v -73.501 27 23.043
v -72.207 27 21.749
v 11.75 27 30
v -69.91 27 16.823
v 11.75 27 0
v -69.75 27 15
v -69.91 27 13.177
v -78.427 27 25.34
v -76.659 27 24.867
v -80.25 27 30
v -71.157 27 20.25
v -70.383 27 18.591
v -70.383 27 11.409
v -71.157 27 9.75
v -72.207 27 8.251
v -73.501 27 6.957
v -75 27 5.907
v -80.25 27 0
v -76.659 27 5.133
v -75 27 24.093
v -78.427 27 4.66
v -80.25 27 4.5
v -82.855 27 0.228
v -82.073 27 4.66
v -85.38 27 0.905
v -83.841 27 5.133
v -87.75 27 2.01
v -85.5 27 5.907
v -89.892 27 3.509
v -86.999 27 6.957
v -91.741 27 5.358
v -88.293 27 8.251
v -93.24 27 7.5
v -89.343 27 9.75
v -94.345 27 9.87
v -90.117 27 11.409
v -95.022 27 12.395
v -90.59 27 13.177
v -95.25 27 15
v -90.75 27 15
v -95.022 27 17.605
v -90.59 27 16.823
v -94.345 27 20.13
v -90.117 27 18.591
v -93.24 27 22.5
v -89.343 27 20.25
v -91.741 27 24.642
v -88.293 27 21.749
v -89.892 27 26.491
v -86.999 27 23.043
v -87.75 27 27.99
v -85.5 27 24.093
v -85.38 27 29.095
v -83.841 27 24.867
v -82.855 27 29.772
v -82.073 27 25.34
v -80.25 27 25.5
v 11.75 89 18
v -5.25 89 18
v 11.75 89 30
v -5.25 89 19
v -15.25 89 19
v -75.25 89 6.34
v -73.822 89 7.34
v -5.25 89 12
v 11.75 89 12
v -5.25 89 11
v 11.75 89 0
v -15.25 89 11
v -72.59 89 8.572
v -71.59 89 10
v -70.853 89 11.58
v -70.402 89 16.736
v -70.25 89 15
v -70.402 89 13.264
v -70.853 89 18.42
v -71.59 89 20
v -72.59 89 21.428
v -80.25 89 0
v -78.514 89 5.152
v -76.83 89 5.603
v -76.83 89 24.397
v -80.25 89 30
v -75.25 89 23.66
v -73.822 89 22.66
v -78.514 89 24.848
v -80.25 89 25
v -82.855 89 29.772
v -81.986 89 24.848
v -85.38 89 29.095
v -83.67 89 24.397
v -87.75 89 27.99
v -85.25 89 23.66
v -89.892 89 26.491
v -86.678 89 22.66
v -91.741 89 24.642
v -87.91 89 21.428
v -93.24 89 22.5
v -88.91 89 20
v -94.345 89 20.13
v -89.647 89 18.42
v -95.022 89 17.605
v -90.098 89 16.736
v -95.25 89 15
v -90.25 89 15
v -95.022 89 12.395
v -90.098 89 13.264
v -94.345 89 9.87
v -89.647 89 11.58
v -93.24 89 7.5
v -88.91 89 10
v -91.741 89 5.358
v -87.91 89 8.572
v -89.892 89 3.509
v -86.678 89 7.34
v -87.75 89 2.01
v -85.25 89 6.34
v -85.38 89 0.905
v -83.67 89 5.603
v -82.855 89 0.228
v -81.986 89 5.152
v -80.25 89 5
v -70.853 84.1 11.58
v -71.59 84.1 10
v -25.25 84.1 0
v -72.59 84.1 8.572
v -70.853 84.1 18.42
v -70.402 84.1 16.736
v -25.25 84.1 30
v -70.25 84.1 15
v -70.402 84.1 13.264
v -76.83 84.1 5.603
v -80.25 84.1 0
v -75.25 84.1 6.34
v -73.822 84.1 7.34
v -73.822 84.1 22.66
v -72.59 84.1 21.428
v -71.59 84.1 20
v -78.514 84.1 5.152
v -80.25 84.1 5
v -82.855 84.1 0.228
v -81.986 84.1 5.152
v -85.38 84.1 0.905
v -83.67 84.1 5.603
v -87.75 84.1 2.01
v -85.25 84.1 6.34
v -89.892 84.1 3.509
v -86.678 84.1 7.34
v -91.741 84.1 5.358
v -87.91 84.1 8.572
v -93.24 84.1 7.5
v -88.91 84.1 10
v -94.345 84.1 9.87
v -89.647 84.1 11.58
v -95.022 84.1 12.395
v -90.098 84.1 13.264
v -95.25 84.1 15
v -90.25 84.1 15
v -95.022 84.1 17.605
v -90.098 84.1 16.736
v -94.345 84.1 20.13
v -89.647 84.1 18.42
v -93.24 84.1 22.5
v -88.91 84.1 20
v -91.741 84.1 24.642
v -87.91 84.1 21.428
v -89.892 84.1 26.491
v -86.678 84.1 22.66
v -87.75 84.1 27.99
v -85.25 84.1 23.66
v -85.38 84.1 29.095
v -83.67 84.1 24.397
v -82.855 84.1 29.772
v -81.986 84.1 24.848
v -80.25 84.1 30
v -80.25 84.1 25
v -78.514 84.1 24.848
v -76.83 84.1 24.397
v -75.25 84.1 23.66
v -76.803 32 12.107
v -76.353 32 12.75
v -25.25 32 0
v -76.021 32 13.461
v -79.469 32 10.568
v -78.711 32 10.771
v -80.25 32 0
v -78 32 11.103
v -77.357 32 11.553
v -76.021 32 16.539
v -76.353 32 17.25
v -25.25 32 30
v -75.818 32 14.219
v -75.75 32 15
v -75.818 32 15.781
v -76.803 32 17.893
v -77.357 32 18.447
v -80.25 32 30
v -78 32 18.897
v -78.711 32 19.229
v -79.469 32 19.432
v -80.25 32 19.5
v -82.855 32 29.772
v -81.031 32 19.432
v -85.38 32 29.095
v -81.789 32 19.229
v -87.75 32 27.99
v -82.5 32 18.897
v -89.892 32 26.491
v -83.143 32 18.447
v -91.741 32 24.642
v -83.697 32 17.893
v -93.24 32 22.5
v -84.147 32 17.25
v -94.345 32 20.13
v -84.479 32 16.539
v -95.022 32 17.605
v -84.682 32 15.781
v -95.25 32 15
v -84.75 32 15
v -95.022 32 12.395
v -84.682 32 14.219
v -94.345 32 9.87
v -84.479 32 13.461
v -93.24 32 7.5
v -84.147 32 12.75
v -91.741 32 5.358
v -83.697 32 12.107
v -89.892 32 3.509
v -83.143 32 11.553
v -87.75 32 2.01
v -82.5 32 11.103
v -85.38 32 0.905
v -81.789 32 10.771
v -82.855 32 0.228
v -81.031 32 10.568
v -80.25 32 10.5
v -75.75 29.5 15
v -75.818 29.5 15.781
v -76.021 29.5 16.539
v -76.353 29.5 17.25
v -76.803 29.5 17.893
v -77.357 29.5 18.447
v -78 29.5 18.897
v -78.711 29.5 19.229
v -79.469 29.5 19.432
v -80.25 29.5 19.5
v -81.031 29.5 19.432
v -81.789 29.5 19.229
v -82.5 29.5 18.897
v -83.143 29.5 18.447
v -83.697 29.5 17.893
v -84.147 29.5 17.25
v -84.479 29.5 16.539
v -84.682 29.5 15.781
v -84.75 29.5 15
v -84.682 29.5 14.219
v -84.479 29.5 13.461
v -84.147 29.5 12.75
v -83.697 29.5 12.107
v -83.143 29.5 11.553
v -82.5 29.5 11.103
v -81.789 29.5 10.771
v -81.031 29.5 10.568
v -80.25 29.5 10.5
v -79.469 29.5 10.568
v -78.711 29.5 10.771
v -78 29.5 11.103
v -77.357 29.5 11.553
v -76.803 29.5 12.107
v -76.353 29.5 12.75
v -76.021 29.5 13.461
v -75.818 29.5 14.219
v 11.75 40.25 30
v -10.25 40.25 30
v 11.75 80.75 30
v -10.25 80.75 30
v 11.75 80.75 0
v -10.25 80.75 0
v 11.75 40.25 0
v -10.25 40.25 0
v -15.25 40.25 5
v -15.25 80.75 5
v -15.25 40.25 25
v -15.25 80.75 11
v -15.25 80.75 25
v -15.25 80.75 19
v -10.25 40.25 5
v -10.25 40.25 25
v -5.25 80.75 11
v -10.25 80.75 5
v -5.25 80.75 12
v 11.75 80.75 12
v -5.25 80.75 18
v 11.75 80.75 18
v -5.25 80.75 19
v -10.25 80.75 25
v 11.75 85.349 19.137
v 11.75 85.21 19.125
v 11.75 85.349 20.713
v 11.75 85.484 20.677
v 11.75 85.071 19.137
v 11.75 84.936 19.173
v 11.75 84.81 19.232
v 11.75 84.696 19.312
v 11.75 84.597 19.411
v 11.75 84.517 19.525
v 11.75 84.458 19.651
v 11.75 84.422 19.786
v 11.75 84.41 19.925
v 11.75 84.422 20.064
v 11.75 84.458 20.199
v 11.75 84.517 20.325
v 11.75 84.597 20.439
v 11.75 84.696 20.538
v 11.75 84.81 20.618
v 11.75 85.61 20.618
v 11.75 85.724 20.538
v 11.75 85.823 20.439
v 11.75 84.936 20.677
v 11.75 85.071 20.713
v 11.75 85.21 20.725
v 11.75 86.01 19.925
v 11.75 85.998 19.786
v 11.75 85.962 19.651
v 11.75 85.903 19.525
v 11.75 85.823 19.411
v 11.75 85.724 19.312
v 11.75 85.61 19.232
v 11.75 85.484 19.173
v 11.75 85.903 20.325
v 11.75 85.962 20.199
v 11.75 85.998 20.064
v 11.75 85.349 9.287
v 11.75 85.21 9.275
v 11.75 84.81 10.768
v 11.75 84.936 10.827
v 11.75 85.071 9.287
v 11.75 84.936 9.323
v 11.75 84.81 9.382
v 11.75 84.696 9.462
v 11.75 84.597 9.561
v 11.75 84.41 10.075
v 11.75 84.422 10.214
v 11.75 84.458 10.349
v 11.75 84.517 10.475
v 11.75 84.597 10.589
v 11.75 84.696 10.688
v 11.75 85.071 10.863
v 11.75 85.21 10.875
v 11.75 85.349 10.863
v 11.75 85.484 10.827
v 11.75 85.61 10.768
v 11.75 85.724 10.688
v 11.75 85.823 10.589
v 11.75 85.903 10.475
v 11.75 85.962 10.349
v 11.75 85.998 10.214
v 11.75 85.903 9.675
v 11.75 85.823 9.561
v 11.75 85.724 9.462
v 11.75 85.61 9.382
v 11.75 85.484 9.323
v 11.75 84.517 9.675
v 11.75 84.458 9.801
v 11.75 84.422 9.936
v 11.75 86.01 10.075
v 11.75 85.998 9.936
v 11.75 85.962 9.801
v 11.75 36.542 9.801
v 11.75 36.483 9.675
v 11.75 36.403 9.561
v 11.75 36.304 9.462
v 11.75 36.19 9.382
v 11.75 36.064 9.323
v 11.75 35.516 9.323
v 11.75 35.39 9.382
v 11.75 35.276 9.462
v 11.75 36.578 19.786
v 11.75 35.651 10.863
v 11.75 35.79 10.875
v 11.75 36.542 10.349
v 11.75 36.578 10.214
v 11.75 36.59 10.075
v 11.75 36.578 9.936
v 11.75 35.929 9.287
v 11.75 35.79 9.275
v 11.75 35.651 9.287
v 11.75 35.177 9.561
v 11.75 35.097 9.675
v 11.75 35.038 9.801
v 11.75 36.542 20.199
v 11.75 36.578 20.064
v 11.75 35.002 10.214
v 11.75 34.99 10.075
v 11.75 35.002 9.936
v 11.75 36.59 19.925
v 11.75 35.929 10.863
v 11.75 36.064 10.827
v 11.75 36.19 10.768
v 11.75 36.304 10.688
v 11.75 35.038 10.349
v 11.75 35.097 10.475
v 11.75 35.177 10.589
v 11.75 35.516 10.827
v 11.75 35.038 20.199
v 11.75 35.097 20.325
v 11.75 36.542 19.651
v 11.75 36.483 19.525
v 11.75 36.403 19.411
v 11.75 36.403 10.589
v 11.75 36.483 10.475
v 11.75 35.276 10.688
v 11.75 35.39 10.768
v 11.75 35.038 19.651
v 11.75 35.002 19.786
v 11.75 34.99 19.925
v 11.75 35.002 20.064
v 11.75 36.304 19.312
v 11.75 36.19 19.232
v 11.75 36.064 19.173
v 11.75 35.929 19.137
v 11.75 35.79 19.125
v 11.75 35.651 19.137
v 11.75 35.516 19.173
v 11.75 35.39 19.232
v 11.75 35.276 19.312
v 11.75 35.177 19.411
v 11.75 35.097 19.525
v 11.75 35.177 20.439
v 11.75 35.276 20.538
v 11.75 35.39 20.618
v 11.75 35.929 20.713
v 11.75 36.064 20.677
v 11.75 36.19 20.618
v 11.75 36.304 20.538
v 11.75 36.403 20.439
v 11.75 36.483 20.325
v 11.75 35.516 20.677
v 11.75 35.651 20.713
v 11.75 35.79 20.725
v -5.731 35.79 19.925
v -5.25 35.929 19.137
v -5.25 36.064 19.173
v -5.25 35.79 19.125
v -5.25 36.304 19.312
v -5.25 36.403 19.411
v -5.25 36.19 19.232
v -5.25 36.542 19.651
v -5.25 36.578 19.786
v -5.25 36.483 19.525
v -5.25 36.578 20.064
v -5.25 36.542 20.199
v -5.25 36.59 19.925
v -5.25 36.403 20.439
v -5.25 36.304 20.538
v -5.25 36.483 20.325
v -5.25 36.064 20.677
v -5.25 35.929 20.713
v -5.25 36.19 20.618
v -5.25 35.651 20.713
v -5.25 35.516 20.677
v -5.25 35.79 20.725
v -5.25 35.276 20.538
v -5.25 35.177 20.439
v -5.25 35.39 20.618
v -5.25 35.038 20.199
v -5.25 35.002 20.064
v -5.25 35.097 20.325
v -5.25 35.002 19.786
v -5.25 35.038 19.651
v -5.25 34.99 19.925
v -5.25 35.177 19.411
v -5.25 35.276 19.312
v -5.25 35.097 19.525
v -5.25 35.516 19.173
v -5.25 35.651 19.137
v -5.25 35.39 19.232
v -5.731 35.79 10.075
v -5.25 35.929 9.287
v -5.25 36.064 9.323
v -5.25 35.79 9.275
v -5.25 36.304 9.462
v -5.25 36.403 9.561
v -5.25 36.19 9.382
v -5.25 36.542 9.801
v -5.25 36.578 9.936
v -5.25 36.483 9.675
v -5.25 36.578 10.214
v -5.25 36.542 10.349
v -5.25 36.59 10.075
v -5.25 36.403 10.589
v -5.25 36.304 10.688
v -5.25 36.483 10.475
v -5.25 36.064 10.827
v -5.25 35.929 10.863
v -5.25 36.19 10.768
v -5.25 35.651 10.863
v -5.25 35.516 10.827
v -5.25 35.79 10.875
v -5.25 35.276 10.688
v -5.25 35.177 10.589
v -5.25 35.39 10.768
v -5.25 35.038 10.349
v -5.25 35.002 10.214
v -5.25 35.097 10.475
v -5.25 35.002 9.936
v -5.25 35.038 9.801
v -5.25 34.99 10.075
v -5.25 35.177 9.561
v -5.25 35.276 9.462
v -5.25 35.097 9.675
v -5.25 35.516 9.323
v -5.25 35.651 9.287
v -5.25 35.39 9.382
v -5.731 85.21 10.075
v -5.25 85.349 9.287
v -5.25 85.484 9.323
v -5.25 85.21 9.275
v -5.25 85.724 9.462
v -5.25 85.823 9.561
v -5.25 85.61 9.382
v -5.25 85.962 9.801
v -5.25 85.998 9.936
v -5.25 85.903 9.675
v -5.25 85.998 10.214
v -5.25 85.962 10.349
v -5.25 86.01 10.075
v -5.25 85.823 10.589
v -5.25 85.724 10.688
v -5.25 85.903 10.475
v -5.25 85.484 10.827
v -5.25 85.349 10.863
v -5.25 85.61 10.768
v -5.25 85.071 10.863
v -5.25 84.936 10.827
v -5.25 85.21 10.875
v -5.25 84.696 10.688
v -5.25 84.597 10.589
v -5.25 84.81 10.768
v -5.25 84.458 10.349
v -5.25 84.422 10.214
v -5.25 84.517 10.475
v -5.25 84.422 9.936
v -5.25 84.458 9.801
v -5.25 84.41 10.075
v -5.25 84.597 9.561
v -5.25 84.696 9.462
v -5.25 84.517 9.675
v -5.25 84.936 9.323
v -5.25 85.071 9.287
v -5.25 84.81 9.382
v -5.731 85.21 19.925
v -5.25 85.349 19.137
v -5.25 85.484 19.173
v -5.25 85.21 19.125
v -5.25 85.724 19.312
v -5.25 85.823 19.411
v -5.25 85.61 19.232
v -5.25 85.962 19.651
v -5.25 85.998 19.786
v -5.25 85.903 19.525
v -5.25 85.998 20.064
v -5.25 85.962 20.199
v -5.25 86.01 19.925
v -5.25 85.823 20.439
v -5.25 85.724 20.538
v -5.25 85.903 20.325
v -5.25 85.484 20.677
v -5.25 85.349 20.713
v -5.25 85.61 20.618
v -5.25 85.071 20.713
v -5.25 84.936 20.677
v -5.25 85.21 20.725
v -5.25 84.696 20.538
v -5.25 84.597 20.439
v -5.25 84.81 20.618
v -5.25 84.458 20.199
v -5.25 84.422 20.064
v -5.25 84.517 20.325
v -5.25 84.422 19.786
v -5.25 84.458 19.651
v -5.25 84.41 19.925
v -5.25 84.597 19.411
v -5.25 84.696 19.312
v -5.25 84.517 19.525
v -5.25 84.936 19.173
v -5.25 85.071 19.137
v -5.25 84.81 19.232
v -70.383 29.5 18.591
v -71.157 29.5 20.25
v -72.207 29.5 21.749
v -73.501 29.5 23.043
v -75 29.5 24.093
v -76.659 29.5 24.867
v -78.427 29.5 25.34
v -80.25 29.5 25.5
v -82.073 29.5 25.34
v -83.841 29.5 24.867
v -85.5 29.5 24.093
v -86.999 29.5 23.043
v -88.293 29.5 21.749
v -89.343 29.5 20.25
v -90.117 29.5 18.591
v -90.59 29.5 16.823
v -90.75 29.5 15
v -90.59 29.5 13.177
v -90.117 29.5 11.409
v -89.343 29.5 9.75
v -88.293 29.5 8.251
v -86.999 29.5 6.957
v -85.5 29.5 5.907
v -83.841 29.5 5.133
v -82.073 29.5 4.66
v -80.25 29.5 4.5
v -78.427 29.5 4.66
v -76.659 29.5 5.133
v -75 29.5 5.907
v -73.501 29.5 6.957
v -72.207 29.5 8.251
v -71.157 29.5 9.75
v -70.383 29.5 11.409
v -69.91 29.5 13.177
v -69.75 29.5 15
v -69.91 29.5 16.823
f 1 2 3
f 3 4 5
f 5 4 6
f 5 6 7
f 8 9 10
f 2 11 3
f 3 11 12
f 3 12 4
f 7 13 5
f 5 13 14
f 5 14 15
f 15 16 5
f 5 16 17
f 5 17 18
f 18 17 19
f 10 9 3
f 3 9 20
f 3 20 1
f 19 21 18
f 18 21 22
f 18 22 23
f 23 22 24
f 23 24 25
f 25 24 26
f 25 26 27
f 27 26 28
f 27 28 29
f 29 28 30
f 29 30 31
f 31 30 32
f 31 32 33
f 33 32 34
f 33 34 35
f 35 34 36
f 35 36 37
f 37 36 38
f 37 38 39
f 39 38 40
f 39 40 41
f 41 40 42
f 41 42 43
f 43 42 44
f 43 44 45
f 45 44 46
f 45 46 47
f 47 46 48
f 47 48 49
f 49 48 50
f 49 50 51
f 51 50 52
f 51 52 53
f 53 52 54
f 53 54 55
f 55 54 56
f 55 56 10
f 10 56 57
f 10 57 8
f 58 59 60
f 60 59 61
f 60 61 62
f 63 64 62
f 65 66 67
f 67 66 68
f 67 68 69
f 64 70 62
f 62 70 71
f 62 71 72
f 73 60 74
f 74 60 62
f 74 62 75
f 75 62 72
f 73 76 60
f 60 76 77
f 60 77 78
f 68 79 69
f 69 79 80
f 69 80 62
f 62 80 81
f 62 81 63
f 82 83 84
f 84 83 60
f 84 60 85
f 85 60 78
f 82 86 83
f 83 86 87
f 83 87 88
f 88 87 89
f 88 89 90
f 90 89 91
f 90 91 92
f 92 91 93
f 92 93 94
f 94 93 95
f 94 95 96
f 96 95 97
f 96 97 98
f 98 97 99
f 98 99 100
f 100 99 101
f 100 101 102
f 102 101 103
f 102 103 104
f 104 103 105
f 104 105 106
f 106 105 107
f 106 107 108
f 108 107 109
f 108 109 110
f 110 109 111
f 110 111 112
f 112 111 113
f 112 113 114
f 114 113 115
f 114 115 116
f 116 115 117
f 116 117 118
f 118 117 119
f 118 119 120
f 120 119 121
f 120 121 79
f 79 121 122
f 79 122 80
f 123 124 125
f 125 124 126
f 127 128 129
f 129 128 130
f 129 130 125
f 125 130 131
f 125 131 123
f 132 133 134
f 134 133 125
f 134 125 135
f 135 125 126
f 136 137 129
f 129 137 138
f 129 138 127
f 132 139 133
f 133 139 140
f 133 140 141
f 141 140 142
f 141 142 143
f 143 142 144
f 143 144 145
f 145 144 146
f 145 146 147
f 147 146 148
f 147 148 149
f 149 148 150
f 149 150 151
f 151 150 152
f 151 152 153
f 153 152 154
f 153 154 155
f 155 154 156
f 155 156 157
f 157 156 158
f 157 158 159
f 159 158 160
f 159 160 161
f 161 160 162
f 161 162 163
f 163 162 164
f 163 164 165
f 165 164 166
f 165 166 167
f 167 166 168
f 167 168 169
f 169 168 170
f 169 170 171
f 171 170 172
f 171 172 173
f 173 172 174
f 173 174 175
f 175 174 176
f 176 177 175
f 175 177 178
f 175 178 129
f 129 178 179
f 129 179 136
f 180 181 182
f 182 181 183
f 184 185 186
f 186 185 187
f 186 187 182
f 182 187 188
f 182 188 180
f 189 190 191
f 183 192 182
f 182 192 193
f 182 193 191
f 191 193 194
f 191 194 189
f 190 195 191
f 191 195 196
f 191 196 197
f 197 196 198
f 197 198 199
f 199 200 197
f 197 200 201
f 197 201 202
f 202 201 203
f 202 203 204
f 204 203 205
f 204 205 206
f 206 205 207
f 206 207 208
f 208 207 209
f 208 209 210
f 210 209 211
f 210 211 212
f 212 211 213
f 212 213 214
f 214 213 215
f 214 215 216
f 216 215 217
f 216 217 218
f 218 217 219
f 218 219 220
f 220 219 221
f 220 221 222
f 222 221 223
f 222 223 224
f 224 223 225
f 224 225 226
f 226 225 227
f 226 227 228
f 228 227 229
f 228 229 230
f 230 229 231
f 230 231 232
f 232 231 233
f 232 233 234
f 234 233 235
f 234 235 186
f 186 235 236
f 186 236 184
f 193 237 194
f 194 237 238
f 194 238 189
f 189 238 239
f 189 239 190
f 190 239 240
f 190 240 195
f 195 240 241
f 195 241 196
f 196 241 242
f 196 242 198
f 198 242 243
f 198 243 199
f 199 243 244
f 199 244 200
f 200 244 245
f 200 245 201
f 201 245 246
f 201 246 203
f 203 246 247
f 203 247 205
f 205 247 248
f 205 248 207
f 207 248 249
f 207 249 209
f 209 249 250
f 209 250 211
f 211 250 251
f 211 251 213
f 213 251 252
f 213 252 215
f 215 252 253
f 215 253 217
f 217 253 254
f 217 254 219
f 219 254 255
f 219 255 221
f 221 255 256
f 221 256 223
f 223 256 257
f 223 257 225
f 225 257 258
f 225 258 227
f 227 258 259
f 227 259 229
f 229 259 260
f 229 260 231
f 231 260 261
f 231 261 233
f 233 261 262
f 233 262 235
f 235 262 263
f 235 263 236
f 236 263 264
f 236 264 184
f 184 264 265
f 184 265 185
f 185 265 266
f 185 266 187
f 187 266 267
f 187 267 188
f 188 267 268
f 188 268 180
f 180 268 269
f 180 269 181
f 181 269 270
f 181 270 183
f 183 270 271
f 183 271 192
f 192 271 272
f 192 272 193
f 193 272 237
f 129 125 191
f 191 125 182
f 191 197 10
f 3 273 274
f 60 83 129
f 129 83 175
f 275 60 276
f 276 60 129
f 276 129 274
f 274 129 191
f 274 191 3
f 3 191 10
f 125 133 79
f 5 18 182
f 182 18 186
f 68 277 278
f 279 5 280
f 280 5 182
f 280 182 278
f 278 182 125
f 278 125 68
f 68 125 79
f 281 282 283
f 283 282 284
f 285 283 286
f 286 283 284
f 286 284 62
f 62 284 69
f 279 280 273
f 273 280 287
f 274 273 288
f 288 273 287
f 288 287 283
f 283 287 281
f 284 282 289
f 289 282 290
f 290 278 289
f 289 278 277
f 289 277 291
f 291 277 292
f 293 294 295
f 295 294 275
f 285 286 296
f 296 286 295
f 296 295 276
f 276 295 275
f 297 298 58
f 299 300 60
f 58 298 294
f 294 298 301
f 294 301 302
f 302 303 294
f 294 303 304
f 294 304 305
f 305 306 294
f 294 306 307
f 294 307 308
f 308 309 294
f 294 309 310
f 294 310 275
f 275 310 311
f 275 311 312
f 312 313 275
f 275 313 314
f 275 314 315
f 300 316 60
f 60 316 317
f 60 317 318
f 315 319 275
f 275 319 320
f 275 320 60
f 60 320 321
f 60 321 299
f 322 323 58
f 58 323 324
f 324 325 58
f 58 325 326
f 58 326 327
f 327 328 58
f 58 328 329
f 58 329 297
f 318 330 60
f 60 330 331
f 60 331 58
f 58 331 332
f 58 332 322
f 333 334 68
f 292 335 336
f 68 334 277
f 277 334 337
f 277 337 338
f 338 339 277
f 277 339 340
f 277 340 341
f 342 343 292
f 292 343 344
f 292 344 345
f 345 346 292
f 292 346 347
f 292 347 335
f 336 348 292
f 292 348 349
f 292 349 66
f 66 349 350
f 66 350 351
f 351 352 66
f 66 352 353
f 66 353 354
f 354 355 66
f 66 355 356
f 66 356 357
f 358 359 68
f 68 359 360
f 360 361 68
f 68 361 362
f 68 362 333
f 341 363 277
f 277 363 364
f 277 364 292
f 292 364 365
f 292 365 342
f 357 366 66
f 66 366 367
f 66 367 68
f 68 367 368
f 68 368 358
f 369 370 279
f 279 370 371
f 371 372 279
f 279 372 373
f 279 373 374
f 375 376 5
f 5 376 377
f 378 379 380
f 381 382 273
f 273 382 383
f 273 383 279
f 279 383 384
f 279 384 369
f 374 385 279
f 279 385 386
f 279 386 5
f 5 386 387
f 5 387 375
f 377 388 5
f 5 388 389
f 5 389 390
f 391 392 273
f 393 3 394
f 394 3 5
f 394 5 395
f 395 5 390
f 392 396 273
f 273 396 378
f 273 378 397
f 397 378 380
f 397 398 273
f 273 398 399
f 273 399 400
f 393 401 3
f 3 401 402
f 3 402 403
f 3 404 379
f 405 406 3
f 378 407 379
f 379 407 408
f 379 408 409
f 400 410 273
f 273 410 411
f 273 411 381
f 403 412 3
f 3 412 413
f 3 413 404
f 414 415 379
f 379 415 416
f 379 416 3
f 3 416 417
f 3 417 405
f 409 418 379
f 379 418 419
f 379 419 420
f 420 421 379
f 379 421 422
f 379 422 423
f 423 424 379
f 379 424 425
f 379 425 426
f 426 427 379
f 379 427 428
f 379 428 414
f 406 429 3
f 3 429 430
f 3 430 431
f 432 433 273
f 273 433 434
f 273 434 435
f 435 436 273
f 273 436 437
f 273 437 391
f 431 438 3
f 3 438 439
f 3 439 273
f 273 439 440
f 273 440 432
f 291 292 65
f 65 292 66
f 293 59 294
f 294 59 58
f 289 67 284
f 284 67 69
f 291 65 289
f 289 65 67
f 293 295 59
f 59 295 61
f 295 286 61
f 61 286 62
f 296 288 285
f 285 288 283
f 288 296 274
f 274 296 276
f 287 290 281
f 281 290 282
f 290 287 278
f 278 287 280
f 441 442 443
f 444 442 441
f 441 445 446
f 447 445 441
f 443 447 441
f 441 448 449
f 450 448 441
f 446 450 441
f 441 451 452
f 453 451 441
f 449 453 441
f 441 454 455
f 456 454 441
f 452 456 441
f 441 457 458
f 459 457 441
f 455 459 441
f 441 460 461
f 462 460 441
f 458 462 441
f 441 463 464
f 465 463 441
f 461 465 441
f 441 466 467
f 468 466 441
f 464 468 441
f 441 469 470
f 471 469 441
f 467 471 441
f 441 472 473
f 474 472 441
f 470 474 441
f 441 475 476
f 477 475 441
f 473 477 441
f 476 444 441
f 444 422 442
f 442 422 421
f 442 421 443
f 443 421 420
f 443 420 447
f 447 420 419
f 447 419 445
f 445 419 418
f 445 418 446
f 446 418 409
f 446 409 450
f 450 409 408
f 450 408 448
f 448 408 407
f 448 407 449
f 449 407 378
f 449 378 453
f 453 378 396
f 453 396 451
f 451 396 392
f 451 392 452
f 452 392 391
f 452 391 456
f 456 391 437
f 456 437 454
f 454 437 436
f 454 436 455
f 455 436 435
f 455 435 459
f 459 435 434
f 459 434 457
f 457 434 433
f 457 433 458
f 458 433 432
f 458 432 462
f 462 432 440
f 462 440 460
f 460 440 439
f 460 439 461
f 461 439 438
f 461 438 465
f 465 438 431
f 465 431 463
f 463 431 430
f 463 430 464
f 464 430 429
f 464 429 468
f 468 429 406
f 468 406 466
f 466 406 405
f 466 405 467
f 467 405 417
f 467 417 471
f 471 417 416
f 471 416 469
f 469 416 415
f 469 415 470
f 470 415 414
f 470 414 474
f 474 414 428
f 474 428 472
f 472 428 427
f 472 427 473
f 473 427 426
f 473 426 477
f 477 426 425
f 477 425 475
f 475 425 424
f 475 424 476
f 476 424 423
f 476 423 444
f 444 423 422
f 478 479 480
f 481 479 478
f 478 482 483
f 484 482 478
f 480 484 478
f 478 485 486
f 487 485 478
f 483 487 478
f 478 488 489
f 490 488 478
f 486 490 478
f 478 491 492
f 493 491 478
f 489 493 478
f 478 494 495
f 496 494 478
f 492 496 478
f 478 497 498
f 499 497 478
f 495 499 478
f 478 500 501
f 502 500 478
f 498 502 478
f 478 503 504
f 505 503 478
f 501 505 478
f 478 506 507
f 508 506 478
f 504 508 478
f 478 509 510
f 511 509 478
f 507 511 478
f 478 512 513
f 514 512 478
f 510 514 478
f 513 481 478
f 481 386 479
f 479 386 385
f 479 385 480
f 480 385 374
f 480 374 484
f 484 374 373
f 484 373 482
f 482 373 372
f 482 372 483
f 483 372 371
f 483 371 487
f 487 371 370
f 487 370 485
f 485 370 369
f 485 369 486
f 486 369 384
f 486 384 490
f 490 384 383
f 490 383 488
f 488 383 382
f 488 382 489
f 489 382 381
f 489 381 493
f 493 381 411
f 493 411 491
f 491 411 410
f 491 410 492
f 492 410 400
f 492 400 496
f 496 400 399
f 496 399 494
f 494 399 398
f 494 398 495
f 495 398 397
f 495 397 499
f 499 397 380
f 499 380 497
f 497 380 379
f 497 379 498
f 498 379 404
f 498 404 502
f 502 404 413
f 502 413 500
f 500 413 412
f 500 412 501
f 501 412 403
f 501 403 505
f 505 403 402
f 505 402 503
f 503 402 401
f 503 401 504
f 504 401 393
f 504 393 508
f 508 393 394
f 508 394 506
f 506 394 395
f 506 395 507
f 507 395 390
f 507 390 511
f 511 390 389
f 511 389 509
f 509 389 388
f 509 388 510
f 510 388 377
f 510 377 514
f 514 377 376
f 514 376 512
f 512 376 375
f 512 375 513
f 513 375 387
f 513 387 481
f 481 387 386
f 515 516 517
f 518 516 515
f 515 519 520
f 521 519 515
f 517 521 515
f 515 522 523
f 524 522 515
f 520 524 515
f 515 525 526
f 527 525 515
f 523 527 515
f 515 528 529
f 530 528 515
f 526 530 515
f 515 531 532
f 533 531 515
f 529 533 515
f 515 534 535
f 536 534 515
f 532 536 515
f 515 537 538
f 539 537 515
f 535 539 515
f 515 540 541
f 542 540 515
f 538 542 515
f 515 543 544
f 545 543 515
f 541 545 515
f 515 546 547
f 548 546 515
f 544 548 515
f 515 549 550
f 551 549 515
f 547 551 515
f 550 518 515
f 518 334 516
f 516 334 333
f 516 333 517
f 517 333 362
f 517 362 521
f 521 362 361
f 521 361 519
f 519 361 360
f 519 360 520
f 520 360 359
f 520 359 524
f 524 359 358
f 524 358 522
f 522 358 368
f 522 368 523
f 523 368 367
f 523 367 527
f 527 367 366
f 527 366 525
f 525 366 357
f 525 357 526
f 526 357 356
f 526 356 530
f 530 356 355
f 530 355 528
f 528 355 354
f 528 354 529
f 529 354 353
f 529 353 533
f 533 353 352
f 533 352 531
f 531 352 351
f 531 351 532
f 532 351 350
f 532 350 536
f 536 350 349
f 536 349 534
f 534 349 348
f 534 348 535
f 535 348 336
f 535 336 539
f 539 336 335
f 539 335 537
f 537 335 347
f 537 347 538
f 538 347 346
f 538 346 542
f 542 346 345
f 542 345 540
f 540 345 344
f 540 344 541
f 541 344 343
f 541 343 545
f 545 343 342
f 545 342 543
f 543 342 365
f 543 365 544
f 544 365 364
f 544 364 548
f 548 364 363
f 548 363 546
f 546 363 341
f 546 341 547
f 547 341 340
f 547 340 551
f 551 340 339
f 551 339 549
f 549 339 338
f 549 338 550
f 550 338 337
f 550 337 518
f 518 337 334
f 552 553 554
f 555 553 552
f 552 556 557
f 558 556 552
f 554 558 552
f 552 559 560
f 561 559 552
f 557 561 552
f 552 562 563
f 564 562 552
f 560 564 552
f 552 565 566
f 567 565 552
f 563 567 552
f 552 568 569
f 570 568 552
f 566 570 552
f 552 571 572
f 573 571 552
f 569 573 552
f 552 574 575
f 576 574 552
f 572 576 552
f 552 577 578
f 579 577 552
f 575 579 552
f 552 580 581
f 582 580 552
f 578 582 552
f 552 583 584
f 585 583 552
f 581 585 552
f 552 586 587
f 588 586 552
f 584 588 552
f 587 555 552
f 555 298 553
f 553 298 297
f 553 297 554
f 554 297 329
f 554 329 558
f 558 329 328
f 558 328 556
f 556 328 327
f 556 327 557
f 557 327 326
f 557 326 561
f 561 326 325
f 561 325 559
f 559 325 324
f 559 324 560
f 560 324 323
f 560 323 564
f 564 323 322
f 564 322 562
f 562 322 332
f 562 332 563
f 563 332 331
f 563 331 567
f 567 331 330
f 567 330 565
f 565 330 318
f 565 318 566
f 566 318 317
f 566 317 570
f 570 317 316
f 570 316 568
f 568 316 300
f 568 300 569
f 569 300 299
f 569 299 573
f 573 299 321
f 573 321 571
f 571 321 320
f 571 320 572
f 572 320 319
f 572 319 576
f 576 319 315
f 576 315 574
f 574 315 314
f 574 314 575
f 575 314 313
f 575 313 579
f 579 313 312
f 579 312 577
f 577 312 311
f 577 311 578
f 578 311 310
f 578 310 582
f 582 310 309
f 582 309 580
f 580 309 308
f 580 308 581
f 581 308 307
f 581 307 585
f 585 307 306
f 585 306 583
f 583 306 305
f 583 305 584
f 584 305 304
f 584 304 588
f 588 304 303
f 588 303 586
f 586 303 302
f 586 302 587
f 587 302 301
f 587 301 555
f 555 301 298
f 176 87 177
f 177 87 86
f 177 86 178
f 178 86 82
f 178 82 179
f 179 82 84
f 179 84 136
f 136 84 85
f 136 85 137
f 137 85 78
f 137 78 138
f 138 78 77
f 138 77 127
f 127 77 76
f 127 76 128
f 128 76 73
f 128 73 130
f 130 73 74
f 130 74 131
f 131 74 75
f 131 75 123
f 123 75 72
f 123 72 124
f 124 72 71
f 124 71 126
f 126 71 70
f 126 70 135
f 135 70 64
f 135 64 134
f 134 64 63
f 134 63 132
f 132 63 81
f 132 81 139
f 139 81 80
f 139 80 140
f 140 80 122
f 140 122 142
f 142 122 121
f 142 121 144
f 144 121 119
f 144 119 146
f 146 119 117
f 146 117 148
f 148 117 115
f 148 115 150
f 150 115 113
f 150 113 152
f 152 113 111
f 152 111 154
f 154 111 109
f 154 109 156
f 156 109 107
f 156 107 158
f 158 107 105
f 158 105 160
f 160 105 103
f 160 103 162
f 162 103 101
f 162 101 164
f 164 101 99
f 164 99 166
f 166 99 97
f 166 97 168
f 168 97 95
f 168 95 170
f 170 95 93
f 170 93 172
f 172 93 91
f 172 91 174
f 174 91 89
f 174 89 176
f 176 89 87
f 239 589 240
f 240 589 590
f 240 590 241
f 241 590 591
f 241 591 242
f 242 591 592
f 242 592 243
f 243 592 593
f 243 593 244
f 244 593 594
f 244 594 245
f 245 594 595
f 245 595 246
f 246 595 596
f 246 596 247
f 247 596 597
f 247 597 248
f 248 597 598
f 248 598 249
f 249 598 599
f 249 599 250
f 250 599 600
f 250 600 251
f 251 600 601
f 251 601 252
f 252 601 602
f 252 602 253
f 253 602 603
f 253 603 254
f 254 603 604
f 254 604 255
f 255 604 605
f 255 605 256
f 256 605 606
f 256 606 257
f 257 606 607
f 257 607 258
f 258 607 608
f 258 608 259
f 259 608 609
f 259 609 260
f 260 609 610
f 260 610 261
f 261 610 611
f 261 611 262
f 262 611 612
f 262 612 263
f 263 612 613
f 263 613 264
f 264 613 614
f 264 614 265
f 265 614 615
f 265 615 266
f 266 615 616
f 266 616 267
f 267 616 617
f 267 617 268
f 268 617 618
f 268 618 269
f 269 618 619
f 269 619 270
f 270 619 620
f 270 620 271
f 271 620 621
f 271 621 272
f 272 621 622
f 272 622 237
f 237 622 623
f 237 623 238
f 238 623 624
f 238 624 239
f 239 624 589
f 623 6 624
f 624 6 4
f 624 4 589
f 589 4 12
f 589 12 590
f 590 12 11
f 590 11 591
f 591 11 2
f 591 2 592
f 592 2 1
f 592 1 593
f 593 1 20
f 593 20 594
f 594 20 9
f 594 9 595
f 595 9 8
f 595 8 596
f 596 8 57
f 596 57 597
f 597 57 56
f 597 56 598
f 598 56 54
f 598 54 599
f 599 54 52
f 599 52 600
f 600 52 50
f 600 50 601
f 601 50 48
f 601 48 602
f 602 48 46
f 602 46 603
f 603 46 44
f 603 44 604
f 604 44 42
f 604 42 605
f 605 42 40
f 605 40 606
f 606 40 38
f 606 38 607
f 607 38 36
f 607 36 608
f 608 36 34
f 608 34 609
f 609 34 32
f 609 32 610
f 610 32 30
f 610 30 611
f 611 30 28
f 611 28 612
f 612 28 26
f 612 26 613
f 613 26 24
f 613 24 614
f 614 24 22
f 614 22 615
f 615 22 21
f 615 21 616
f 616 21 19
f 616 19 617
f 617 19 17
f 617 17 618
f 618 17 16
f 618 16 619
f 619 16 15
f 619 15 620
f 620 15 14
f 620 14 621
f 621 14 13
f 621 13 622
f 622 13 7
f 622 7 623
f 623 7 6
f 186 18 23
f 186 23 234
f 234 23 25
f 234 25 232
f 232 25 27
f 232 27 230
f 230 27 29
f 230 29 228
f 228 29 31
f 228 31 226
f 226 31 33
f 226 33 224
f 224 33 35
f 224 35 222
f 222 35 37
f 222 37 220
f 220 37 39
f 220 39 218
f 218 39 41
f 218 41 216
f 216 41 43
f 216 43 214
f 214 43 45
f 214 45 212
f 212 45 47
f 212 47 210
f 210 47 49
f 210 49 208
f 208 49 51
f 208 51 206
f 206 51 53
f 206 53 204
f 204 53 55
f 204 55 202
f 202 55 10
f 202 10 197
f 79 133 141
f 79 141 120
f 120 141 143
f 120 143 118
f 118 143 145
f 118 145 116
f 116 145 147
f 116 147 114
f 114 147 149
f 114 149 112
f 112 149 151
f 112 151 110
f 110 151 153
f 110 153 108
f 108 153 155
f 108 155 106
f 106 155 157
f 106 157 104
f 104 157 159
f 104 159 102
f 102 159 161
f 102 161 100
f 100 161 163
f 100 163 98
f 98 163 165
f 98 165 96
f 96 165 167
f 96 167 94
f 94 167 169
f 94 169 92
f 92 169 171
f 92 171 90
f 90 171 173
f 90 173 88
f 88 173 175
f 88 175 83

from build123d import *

# Parameters (mm, degrees)
ESQUISSE1_W               = 60.5
ESQUISSE1_H               = 64
BOSS_EXTRU_1_DEPTH        = 30
ESQUISSE2_R               = 4.5
ENL_V_MAT_EXTRU_1_DEPTH   = 32
ENL_V_MAT_EXTRU_2_REACH   = 55.283
ESQUISSE4_W               = 51.1
ESQUISSE4_H               = 83.557669167
ESQUISSE5_R               = 10.5
ENL_V_MAT_EXTRU_3_DEPTH   = 2
ESQUISSE6_R               = 10
ENL_V_MAT_EXTRU_4_DEPTH   = 4.7
ESQUISSE7_W               = 47
ESQUISSE7_H               = 57
BOSS_EXTRU_2_DEPTH        = 30
ENL_V_MAT_EXTRU_5_DEPTH   = 30
ENL_V_MAT_EXTRU_6_DEPTH   = 8.25
ESQUISSE11_W              = 5
ESQUISSE11_H              = 40.5
BOSS_EXTRU_3_DEPTH        = 5
ESQUISSE12_R              = 0.5
ENL_V_MAT_EXTRU_7_DEPTH   = 15
TROU_TARAUD_M2X0_42_D     = 1.6
TROU_TARAUD_M2X0_42_DEPTH = 17
TROU_TARAUD_M2X0_42_TIP   = 0.480688495
ENL_V_MAT_EXTRU_8_REACH   = 113.72
ESQUISSE22_W              = 82.97203866
ESQUISSE22_H              = 67.875780224
ENL_V_MAT_EXTRU_10_DEPTH  = 30
ESQUISSE23_W              = 55
ESQUISSE23_H              = 5
ESQUISSE23_H_2            = 4.9
BOSS_EXTRU_4_DEPTH        = 30
ENL_V_START               = -62
ESQUISSE24_R              = 10
ENL_V_MAT_EXTRU_11_DEPTH  = 62
ENL_V_MAT_EXTRU_12_REACH  = 111.597
ESQUISSE26_R              = 10.5
ESQUISSE26_R_2            = 4.5
BOSS_EXTRU_5_DEPTH        = 5
ESQUISSE27_R              = 10.5
ENL_V_MAT_EXTRU_13_DEPTH  = 2.5
ESQUISSE28_W              = 21.53784572
ESQUISSE28_H              = 33.22443827
ENL_V_MAT_EXTRU_14_DEPTH  = 5
ESQUISSE29_W              = 5
ESQUISSE29_H              = 52.1
ENL_V_MAT_EXTRU_15_DEPTH  = 30
BOSS_EXTRU_6_DEPTH        = 62
ENL_V_START_2             = -20.388398
ESQUISSE32_W              = 38.789198293
ESQUISSE32_H              = 52.1
ENL_V_MAT_EXTRU_16_DEPTH  = 20.388398
ESQUISSE36_W              = 70.879809572
ESQUISSE36_H              = 44.299384872
ENL_V_MAT_EXTRU_20_DEPTH  = 62
ESQUISSE37_W              = 30
ESQUISSE37_H              = 4.9
ESQUISSE37_H_2            = 5
BOSS_EXTRU_8_DEPTH        = 70
ENL_V_MAT_EXTRU_21_REACH  = 119.544
ESQUISSE38_R              = 4.5
ESQUISSE39_R              = 10
ENL_V_MAT_EXTRU_22_DEPTH  = 4.9
ESQUISSE40_R              = 10.5
ENL_V_MAT_EXTRU_23_DEPTH  = 2.5
ENL_V_MAT_EXTRU_24_REACH  = 119.544


with BuildPart() as part:
    # Esquisse1 → Boss.-Extru.1 (new body)
    with BuildSketch(Plane.XY):
        Rectangle(ESQUISSE1_W, ESQUISSE1_H)
    extrude(amount=BOSS_EXTRU_1_DEPTH)

    # Esquisse2 → Enlèv. mat.-Extru.1 (cut)
    with BuildSketch(Plane(origin=(30.25, 0, 0), x_dir=(0, 0, -1), z_dir=(1, 0, 0))):
        with Locations(Location((-15, -17, 0), (0, 0, 90))):
            Circle(ESQUISSE2_R)
    extrude(amount=-ENL_V_MAT_EXTRU_1_DEPTH, mode=Mode.SUBTRACT)

    # Enlèv. mat.-Extru.2: up to this face of the body (flat: up to its plane)
    enl_v_mat_extru_2_end = Plane(part.part.faces().sort_by_distance((0, 0, 0))[0])
    # Esquisse4 → Enlèv. mat.-Extru.2 (cut, up to the picked face)
    with BuildSketch(Plane.XY.offset(30), mode=Mode.PRIVATE) as enl_v_mat_extru_2_sk1:
        with Locations((0, -14.778834584)):
            Rectangle(ESQUISSE4_W, ESQUISSE4_H)
    enl_v_mat_extru_2_tool1 = split(extrude(enl_v_mat_extru_2_sk1.sketch, amount=-ENL_V_MAT_EXTRU_2_REACH, mode=Mode.PRIVATE), bisect_by=enl_v_mat_extru_2_end, keep=Keep.BOTH, mode=Mode.PRIVATE)
    add(enl_v_mat_extru_2_tool1.solids().sort_by(Axis((0, -14.778835, 30), (0, 0, -1)))[0], mode=Mode.SUBTRACT)

    # Esquisse5 → Enlèv. mat.-Extru.3 (cut)
    with BuildSketch(Plane(origin=(30.25, 0, 0), x_dir=(0, 0, -1), z_dir=(1, 0, 0))):
        with Locations(Location((-15, -17, 0), (0, 0, 90))):
            Circle(ESQUISSE5_R)
    extrude(amount=-ENL_V_MAT_EXTRU_3_DEPTH, mode=Mode.SUBTRACT)

    # Esquisse6 → Enlèv. mat.-Extru.4 (cut)
    with BuildSketch(Plane(origin=(-25.55, 0, 0), x_dir=(0, 0, -1), z_dir=(1, 0, 0))):
        with Locations((-15, -17)):
            Circle(ESQUISSE6_R)
    extrude(amount=-ENL_V_MAT_EXTRU_4_DEPTH, mode=Mode.SUBTRACT)

    # Esquisse7 → Boss.-Extru.2 (add)
    with BuildSketch(Plane.XY.offset(30)):
        with Locations((-6.75, 60.5)):
            Rectangle(ESQUISSE7_W, ESQUISSE7_H)
    extrude(amount=-BOSS_EXTRU_2_DEPTH)

    # Esquisse8 → Enlèv. mat.-Extru.5 (cut)
    with BuildSketch(Plane.XY.offset(30)):
        Polygon((-15.25, 80.75), (11.75, 80.75), (11.75, 101.149817475), (21.75, 101.149817475), (21.75, 32), (11.75, 32), (11.75, 40.25), (-15.25, 40.25), align=None)
    extrude(amount=-ENL_V_MAT_EXTRU_5_DEPTH, mode=Mode.SUBTRACT)

    # Esquisse10 → Enlèv. mat.-Extru.6 (cut)
    with BuildSketch(Plane.XZ.offset(-80.75)):
        Polygon((-5.25, 11), (-5.25, 12), (34.75, 12), (34.75, 18), (-5.25, 18), (-5.25, 19), (-15.25, 19), (-15.25, 11), align=None)
    extrude(amount=-ENL_V_MAT_EXTRU_6_DEPTH, mode=Mode.SUBTRACT)

    # Esquisse11 → Boss.-Extru.3 (add)
    with BuildSketch(Plane(origin=(-15.25, 0, 0), x_dir=(0, 0, -1), z_dir=(1, 0, 0))):
        with Locations((-27.5, 60.5)):
            Rectangle(ESQUISSE11_W, ESQUISSE11_H)
        with Locations((-2.5, 60.5)):
            Rectangle(ESQUISSE11_W, ESQUISSE11_H)
    extrude(amount=BOSS_EXTRU_3_DEPTH)

    # Esquisse12 → Enlèv. mat.-Extru.7 (cut)
    with BuildSketch(Plane(origin=(11.75, 0, 0), x_dir=(0, 0, -1), z_dir=(1, 0, 0))):
        with Locations((-19.925, 85.21)):
            Circle(ESQUISSE12_R)
        with Locations(Location((-10.075, 85.21, 0), (0, 0, 180))):
            Circle(ESQUISSE12_R)
        with Locations((-10.075, 35.79)):
            Circle(ESQUISSE12_R)
        with Locations(Location((-19.925, 35.79, 0), (0, 0, 180))):
            Circle(ESQUISSE12_R)
    extrude(amount=-ENL_V_MAT_EXTRU_7_DEPTH, mode=Mode.SUBTRACT)

    # Trou taraudé M2x0.42
    with Locations(Plane(origin=(11.75, 85.21, 19.925), x_dir=(0, 0, 1), z_dir=(1, 0, 0))):
        with Locations((0, 0), (-9.85, 0), (-9.85, 49.42), (0, 49.42)):
            Hole(TROU_TARAUD_M2X0_42_D / 2, depth=TROU_TARAUD_M2X0_42_DEPTH)
            with Locations((0, 0, -(TROU_TARAUD_M2X0_42_DEPTH + TROU_TARAUD_M2X0_42_TIP / 2))):  # 118° drill point
                Cone(0, TROU_TARAUD_M2X0_42_D / 2, TROU_TARAUD_M2X0_42_TIP, mode=Mode.SUBTRACT)

    # Enlèv. mat.-Extru.8: up to this face of the body (flat: up to its plane)
    enl_v_mat_extru_8_end = Plane(part.part.faces().sort_by_distance((30.25, 3.741727612, 15))[0])
    # Esquisse15 → Enlèv. mat.-Extru.8 (cut, up to the picked face)
    with BuildSketch(Plane.ZY.offset(30.25), mode=Mode.PRIVATE) as enl_v_mat_extru_8_sk1:
        with BuildLine():
            Line((40, -17), (30, -17))
            ThreePointArc((30, -17), (15, -32), (0, -17))
            Line((0, -17), (-10, -17))
            ThreePointArc((-10, -17), (15, -42), (40, -17))
        make_face()
    enl_v_mat_extru_8_tool1 = split(extrude(enl_v_mat_extru_8_sk1.sketch, amount=-ENL_V_MAT_EXTRU_8_REACH, mode=Mode.PRIVATE), bisect_by=enl_v_mat_extru_8_end, keep=Keep.BOTH, mode=Mode.PRIVATE)
    add(enl_v_mat_extru_8_tool1.solids().sort_by(Axis((-30.25, -17.559017, -5), (1, 0, 0)))[0], mode=Mode.SUBTRACT)

    # Esquisse22 → Enlèv. mat.-Extru.10 (cut)
    with BuildSketch(Plane.XY.offset(30)):
        with Locations((-1.917421061, -6.937890112)):
            Rectangle(ESQUISSE22_W, ESQUISSE22_H)
    extrude(amount=-ENL_V_MAT_EXTRU_10_DEPTH, mode=Mode.SUBTRACT)

    # Esquisse23 → Boss.-Extru.4 (add)
    with BuildSketch(Plane(origin=(0, 0, 0), x_dir=(-1, 0, 0), z_dir=(0, 0, -1))):
        with Locations((57.75, 29.5)):
            Rectangle(ESQUISSE23_W, ESQUISSE23_H)
        with Locations((57.75, 86.55)):
            Rectangle(ESQUISSE23_W, ESQUISSE23_H_2)
    extrude(amount=-BOSS_EXTRU_4_DEPTH)

    # Esquisse24 → Enlèv. mat.-Extru.11 (cut)
    with BuildSketch(Plane.XZ.offset(-27).offset(ENL_V_START)):
        with Locations((-74.25, 15)):
            Circle(ESQUISSE24_R)
    extrude(amount=ENL_V_MAT_EXTRU_11_DEPTH, mode=Mode.SUBTRACT)

    # Enlèv. mat.-Extru.12: up to this face of the body (flat: up to its plane)
    enl_v_mat_extru_12_end = Plane(part.part.faces().sort_by_distance((-34.437928466, 89, 15))[0])
    # Esquisse25 → Enlèv. mat.-Extru.12 (cut, up to the picked face)
    with BuildSketch(Plane.XZ.offset(-27), mode=Mode.PRIVATE) as enl_v_mat_extru_12_sk1:
        with BuildLine():
            Line((-74.25, 44.134833893), (-74.25, 30))
            ThreePointArc((-74.25, 30), (-89.25, 15), (-74.25, 0))
            Line((-74.25, 0), (-74.25, -14.134833893))
            ThreePointArc((-74.25, -14.134833893), (-103.384833893, 15), (-74.25, 44.134833893))
        make_face()
    enl_v_mat_extru_12_tool1 = split(extrude(enl_v_mat_extru_12_sk1.sketch, amount=-ENL_V_MAT_EXTRU_12_REACH, mode=Mode.PRIVATE), bisect_by=enl_v_mat_extru_12_end, keep=Keep.BOTH, mode=Mode.PRIVATE)
    add(enl_v_mat_extru_12_tool1.solids().sort_by(Axis((-74.901475, 27, 37.067417), (0, 1, 0)))[0], mode=Mode.SUBTRACT)

    # Esquisse26 → Boss.-Extru.5 (add)
    with BuildSketch(Plane.XZ.offset(-27)):
        with Locations((-74.25, 15)):
            Circle(ESQUISSE26_R)
        with Locations((-74.25, 15)):
            Circle(ESQUISSE26_R_2, mode=Mode.SUBTRACT)
    extrude(amount=-BOSS_EXTRU_5_DEPTH)

    # Esquisse27 → Enlèv. mat.-Extru.13 (cut)
    with BuildSketch(Plane.XZ.offset(-27)):
        with Locations((-74.25, 15)):
            Circle(ESQUISSE27_R)
    extrude(amount=-ENL_V_MAT_EXTRU_13_DEPTH, mode=Mode.SUBTRACT)

    # Esquisse28 → Enlèv. mat.-Extru.14 (cut)
    with BuildSketch(Plane(origin=(0, 32, 0), x_dir=(1, 0, 0), z_dir=(0, 1, 0))):
        with Locations((22.51892286, -16.612219135)):
            Rectangle(ESQUISSE28_W, ESQUISSE28_H)
    extrude(amount=-ENL_V_MAT_EXTRU_14_DEPTH, mode=Mode.SUBTRACT)

    # Esquisse29 → Enlèv. mat.-Extru.15 (cut)
    with BuildSketch(Plane(origin=(0, 0, 0), x_dir=(-1, 0, 0), z_dir=(0, 0, -1))):
        with Locations((27.75, 58.05)):
            Rectangle(ESQUISSE29_W, ESQUISSE29_H)
    extrude(amount=-ENL_V_MAT_EXTRU_15_DEPTH, mode=Mode.SUBTRACT)

    # Esquisse31 → Boss.-Extru.6 (add)
    with BuildSketch(Plane.XZ.offset(-27)):
        with BuildLine():
            ThreePointArc((-74.826036871, 4.515812787), (-83.84709586, 10.740217019), (-82.411654216, 21.605861069))
            Line((-82.411654216, 21.605861069), (-85.25, 25.198039027))
            Line((-85.25, 25.198039027), (-85.25, 4.801960973))
            Line((-85.25, 4.801960973), (-74.826036871, 4.515812787))
        make_face()
        with BuildLine():
            ThreePointArc((-85.25, 25.198039027), (-89.25, 15), (-85.25, 4.801960973))
            Line((-85.25, 4.801960973), (-85.25, 25.198039027))
        make_face()
    extrude(amount=-BOSS_EXTRU_6_DEPTH)

    # Esquisse32 → Enlèv. mat.-Extru.16 (cut)
    with BuildSketch(Plane(origin=(0.067526976, 0, 2.459909751), x_dir=(-0.9996234341769173, 0, 0.027440660421105302), z_dir=(-0.027440660421105302, 0, -0.9996234341769173)).offset(ENL_V_START_2)):
        with Locations((94.316375975, 58.05)):
            Rectangle(ESQUISSE32_W, ESQUISSE32_H)
    extrude(amount=ENL_V_MAT_EXTRU_16_DEPTH, mode=Mode.SUBTRACT)

    # Esquisse36 → Enlèv. mat.-Extru.20 (cut)
    with BuildSketch(Plane.XZ.offset(-27)):
        with Locations((-60.689904786, 17.333529037)):
            Rectangle(ESQUISSE36_W, ESQUISSE36_H)
    extrude(amount=-ENL_V_MAT_EXTRU_20_DEPTH, mode=Mode.SUBTRACT)

    # Esquisse37 → Boss.-Extru.8 (add)
    with BuildSketch(Plane.ZY.offset(25.25)):
        with Locations((15, 86.55)):
            Rectangle(ESQUISSE37_W, ESQUISSE37_H)
        with Locations((15, 29.5)):
            Rectangle(ESQUISSE37_W, ESQUISSE37_H_2)
    extrude(amount=BOSS_EXTRU_8_DEPTH)

    # Enlèv. mat.-Extru.21: up to this face of the body (flat: up to its plane)
    enl_v_mat_extru_21_end = Plane(part.part.faces().sort_by_distance((-44.098084544, 89, 15))[0])
    # Esquisse38 → Enlèv. mat.-Extru.21 (cut, up to the picked face)
    with BuildSketch(Plane.XZ.offset(-27), mode=Mode.PRIVATE) as enl_v_mat_extru_21_sk1:
        with Locations((-80.25, 15)):
            Circle(ESQUISSE38_R)
    enl_v_mat_extru_21_tool1 = split(extrude(enl_v_mat_extru_21_sk1.sketch, amount=-ENL_V_MAT_EXTRU_21_REACH, mode=Mode.PRIVATE), bisect_by=enl_v_mat_extru_21_end, keep=Keep.BOTH, mode=Mode.PRIVATE)
    add(enl_v_mat_extru_21_tool1.solids().sort_by(Axis((-80.25, 27, 15), (0, 1, 0)))[0], mode=Mode.SUBTRACT)

    # Esquisse39 → Enlèv. mat.-Extru.22 (cut)
    with BuildSketch(Plane(origin=(0, 89, 0), x_dir=(1, 0, 0), z_dir=(0, 1, 0))):
        with Locations(Location((-80.25, -15, 0), (0, 0, 270))):
            Circle(ESQUISSE39_R)
    extrude(amount=-ENL_V_MAT_EXTRU_22_DEPTH, mode=Mode.SUBTRACT)

    # Esquisse40 → Enlèv. mat.-Extru.23 (cut)
    with BuildSketch(Plane.XZ.offset(-27)):
        with Locations((-80.25, 15)):
            Circle(ESQUISSE40_R)
    extrude(amount=-ENL_V_MAT_EXTRU_23_DEPTH, mode=Mode.SUBTRACT)

    # Enlèv. mat.-Extru.24: up to this face of the body (flat: up to its plane)
    enl_v_mat_extru_24_end = Plane(part.part.faces().sort_by_distance((-39.91307138, 89, 15))[0])
    # Esquisse42 → Enlèv. mat.-Extru.24 (cut, up to the picked face)
    with BuildSketch(Plane.XZ.offset(-27), mode=Mode.PRIVATE) as enl_v_mat_extru_24_sk1:
        with BuildLine():
            Line((-80.25, 38.922928663), (-80.25, 30))
            ThreePointArc((-80.25, 30), (-95.25, 15), (-80.25, 0))
            Line((-80.25, 0), (-80.25, -8.922928663))
            ThreePointArc((-80.25, -8.922928663), (-104.172928663, 15), (-80.25, 38.922928663))
        make_face()
    enl_v_mat_extru_24_tool1 = split(extrude(enl_v_mat_extru_24_sk1.sketch, amount=-ENL_V_MAT_EXTRU_24_REACH, mode=Mode.PRIVATE), bisect_by=enl_v_mat_extru_24_end, keep=Keep.BOTH, mode=Mode.PRIVATE)
    add(enl_v_mat_extru_24_tool1.solids().sort_by(Axis((-80.784933, 27, 34.461464), (0, 1, 0)))[0], mode=Mode.SUBTRACT)


solid = part.part
